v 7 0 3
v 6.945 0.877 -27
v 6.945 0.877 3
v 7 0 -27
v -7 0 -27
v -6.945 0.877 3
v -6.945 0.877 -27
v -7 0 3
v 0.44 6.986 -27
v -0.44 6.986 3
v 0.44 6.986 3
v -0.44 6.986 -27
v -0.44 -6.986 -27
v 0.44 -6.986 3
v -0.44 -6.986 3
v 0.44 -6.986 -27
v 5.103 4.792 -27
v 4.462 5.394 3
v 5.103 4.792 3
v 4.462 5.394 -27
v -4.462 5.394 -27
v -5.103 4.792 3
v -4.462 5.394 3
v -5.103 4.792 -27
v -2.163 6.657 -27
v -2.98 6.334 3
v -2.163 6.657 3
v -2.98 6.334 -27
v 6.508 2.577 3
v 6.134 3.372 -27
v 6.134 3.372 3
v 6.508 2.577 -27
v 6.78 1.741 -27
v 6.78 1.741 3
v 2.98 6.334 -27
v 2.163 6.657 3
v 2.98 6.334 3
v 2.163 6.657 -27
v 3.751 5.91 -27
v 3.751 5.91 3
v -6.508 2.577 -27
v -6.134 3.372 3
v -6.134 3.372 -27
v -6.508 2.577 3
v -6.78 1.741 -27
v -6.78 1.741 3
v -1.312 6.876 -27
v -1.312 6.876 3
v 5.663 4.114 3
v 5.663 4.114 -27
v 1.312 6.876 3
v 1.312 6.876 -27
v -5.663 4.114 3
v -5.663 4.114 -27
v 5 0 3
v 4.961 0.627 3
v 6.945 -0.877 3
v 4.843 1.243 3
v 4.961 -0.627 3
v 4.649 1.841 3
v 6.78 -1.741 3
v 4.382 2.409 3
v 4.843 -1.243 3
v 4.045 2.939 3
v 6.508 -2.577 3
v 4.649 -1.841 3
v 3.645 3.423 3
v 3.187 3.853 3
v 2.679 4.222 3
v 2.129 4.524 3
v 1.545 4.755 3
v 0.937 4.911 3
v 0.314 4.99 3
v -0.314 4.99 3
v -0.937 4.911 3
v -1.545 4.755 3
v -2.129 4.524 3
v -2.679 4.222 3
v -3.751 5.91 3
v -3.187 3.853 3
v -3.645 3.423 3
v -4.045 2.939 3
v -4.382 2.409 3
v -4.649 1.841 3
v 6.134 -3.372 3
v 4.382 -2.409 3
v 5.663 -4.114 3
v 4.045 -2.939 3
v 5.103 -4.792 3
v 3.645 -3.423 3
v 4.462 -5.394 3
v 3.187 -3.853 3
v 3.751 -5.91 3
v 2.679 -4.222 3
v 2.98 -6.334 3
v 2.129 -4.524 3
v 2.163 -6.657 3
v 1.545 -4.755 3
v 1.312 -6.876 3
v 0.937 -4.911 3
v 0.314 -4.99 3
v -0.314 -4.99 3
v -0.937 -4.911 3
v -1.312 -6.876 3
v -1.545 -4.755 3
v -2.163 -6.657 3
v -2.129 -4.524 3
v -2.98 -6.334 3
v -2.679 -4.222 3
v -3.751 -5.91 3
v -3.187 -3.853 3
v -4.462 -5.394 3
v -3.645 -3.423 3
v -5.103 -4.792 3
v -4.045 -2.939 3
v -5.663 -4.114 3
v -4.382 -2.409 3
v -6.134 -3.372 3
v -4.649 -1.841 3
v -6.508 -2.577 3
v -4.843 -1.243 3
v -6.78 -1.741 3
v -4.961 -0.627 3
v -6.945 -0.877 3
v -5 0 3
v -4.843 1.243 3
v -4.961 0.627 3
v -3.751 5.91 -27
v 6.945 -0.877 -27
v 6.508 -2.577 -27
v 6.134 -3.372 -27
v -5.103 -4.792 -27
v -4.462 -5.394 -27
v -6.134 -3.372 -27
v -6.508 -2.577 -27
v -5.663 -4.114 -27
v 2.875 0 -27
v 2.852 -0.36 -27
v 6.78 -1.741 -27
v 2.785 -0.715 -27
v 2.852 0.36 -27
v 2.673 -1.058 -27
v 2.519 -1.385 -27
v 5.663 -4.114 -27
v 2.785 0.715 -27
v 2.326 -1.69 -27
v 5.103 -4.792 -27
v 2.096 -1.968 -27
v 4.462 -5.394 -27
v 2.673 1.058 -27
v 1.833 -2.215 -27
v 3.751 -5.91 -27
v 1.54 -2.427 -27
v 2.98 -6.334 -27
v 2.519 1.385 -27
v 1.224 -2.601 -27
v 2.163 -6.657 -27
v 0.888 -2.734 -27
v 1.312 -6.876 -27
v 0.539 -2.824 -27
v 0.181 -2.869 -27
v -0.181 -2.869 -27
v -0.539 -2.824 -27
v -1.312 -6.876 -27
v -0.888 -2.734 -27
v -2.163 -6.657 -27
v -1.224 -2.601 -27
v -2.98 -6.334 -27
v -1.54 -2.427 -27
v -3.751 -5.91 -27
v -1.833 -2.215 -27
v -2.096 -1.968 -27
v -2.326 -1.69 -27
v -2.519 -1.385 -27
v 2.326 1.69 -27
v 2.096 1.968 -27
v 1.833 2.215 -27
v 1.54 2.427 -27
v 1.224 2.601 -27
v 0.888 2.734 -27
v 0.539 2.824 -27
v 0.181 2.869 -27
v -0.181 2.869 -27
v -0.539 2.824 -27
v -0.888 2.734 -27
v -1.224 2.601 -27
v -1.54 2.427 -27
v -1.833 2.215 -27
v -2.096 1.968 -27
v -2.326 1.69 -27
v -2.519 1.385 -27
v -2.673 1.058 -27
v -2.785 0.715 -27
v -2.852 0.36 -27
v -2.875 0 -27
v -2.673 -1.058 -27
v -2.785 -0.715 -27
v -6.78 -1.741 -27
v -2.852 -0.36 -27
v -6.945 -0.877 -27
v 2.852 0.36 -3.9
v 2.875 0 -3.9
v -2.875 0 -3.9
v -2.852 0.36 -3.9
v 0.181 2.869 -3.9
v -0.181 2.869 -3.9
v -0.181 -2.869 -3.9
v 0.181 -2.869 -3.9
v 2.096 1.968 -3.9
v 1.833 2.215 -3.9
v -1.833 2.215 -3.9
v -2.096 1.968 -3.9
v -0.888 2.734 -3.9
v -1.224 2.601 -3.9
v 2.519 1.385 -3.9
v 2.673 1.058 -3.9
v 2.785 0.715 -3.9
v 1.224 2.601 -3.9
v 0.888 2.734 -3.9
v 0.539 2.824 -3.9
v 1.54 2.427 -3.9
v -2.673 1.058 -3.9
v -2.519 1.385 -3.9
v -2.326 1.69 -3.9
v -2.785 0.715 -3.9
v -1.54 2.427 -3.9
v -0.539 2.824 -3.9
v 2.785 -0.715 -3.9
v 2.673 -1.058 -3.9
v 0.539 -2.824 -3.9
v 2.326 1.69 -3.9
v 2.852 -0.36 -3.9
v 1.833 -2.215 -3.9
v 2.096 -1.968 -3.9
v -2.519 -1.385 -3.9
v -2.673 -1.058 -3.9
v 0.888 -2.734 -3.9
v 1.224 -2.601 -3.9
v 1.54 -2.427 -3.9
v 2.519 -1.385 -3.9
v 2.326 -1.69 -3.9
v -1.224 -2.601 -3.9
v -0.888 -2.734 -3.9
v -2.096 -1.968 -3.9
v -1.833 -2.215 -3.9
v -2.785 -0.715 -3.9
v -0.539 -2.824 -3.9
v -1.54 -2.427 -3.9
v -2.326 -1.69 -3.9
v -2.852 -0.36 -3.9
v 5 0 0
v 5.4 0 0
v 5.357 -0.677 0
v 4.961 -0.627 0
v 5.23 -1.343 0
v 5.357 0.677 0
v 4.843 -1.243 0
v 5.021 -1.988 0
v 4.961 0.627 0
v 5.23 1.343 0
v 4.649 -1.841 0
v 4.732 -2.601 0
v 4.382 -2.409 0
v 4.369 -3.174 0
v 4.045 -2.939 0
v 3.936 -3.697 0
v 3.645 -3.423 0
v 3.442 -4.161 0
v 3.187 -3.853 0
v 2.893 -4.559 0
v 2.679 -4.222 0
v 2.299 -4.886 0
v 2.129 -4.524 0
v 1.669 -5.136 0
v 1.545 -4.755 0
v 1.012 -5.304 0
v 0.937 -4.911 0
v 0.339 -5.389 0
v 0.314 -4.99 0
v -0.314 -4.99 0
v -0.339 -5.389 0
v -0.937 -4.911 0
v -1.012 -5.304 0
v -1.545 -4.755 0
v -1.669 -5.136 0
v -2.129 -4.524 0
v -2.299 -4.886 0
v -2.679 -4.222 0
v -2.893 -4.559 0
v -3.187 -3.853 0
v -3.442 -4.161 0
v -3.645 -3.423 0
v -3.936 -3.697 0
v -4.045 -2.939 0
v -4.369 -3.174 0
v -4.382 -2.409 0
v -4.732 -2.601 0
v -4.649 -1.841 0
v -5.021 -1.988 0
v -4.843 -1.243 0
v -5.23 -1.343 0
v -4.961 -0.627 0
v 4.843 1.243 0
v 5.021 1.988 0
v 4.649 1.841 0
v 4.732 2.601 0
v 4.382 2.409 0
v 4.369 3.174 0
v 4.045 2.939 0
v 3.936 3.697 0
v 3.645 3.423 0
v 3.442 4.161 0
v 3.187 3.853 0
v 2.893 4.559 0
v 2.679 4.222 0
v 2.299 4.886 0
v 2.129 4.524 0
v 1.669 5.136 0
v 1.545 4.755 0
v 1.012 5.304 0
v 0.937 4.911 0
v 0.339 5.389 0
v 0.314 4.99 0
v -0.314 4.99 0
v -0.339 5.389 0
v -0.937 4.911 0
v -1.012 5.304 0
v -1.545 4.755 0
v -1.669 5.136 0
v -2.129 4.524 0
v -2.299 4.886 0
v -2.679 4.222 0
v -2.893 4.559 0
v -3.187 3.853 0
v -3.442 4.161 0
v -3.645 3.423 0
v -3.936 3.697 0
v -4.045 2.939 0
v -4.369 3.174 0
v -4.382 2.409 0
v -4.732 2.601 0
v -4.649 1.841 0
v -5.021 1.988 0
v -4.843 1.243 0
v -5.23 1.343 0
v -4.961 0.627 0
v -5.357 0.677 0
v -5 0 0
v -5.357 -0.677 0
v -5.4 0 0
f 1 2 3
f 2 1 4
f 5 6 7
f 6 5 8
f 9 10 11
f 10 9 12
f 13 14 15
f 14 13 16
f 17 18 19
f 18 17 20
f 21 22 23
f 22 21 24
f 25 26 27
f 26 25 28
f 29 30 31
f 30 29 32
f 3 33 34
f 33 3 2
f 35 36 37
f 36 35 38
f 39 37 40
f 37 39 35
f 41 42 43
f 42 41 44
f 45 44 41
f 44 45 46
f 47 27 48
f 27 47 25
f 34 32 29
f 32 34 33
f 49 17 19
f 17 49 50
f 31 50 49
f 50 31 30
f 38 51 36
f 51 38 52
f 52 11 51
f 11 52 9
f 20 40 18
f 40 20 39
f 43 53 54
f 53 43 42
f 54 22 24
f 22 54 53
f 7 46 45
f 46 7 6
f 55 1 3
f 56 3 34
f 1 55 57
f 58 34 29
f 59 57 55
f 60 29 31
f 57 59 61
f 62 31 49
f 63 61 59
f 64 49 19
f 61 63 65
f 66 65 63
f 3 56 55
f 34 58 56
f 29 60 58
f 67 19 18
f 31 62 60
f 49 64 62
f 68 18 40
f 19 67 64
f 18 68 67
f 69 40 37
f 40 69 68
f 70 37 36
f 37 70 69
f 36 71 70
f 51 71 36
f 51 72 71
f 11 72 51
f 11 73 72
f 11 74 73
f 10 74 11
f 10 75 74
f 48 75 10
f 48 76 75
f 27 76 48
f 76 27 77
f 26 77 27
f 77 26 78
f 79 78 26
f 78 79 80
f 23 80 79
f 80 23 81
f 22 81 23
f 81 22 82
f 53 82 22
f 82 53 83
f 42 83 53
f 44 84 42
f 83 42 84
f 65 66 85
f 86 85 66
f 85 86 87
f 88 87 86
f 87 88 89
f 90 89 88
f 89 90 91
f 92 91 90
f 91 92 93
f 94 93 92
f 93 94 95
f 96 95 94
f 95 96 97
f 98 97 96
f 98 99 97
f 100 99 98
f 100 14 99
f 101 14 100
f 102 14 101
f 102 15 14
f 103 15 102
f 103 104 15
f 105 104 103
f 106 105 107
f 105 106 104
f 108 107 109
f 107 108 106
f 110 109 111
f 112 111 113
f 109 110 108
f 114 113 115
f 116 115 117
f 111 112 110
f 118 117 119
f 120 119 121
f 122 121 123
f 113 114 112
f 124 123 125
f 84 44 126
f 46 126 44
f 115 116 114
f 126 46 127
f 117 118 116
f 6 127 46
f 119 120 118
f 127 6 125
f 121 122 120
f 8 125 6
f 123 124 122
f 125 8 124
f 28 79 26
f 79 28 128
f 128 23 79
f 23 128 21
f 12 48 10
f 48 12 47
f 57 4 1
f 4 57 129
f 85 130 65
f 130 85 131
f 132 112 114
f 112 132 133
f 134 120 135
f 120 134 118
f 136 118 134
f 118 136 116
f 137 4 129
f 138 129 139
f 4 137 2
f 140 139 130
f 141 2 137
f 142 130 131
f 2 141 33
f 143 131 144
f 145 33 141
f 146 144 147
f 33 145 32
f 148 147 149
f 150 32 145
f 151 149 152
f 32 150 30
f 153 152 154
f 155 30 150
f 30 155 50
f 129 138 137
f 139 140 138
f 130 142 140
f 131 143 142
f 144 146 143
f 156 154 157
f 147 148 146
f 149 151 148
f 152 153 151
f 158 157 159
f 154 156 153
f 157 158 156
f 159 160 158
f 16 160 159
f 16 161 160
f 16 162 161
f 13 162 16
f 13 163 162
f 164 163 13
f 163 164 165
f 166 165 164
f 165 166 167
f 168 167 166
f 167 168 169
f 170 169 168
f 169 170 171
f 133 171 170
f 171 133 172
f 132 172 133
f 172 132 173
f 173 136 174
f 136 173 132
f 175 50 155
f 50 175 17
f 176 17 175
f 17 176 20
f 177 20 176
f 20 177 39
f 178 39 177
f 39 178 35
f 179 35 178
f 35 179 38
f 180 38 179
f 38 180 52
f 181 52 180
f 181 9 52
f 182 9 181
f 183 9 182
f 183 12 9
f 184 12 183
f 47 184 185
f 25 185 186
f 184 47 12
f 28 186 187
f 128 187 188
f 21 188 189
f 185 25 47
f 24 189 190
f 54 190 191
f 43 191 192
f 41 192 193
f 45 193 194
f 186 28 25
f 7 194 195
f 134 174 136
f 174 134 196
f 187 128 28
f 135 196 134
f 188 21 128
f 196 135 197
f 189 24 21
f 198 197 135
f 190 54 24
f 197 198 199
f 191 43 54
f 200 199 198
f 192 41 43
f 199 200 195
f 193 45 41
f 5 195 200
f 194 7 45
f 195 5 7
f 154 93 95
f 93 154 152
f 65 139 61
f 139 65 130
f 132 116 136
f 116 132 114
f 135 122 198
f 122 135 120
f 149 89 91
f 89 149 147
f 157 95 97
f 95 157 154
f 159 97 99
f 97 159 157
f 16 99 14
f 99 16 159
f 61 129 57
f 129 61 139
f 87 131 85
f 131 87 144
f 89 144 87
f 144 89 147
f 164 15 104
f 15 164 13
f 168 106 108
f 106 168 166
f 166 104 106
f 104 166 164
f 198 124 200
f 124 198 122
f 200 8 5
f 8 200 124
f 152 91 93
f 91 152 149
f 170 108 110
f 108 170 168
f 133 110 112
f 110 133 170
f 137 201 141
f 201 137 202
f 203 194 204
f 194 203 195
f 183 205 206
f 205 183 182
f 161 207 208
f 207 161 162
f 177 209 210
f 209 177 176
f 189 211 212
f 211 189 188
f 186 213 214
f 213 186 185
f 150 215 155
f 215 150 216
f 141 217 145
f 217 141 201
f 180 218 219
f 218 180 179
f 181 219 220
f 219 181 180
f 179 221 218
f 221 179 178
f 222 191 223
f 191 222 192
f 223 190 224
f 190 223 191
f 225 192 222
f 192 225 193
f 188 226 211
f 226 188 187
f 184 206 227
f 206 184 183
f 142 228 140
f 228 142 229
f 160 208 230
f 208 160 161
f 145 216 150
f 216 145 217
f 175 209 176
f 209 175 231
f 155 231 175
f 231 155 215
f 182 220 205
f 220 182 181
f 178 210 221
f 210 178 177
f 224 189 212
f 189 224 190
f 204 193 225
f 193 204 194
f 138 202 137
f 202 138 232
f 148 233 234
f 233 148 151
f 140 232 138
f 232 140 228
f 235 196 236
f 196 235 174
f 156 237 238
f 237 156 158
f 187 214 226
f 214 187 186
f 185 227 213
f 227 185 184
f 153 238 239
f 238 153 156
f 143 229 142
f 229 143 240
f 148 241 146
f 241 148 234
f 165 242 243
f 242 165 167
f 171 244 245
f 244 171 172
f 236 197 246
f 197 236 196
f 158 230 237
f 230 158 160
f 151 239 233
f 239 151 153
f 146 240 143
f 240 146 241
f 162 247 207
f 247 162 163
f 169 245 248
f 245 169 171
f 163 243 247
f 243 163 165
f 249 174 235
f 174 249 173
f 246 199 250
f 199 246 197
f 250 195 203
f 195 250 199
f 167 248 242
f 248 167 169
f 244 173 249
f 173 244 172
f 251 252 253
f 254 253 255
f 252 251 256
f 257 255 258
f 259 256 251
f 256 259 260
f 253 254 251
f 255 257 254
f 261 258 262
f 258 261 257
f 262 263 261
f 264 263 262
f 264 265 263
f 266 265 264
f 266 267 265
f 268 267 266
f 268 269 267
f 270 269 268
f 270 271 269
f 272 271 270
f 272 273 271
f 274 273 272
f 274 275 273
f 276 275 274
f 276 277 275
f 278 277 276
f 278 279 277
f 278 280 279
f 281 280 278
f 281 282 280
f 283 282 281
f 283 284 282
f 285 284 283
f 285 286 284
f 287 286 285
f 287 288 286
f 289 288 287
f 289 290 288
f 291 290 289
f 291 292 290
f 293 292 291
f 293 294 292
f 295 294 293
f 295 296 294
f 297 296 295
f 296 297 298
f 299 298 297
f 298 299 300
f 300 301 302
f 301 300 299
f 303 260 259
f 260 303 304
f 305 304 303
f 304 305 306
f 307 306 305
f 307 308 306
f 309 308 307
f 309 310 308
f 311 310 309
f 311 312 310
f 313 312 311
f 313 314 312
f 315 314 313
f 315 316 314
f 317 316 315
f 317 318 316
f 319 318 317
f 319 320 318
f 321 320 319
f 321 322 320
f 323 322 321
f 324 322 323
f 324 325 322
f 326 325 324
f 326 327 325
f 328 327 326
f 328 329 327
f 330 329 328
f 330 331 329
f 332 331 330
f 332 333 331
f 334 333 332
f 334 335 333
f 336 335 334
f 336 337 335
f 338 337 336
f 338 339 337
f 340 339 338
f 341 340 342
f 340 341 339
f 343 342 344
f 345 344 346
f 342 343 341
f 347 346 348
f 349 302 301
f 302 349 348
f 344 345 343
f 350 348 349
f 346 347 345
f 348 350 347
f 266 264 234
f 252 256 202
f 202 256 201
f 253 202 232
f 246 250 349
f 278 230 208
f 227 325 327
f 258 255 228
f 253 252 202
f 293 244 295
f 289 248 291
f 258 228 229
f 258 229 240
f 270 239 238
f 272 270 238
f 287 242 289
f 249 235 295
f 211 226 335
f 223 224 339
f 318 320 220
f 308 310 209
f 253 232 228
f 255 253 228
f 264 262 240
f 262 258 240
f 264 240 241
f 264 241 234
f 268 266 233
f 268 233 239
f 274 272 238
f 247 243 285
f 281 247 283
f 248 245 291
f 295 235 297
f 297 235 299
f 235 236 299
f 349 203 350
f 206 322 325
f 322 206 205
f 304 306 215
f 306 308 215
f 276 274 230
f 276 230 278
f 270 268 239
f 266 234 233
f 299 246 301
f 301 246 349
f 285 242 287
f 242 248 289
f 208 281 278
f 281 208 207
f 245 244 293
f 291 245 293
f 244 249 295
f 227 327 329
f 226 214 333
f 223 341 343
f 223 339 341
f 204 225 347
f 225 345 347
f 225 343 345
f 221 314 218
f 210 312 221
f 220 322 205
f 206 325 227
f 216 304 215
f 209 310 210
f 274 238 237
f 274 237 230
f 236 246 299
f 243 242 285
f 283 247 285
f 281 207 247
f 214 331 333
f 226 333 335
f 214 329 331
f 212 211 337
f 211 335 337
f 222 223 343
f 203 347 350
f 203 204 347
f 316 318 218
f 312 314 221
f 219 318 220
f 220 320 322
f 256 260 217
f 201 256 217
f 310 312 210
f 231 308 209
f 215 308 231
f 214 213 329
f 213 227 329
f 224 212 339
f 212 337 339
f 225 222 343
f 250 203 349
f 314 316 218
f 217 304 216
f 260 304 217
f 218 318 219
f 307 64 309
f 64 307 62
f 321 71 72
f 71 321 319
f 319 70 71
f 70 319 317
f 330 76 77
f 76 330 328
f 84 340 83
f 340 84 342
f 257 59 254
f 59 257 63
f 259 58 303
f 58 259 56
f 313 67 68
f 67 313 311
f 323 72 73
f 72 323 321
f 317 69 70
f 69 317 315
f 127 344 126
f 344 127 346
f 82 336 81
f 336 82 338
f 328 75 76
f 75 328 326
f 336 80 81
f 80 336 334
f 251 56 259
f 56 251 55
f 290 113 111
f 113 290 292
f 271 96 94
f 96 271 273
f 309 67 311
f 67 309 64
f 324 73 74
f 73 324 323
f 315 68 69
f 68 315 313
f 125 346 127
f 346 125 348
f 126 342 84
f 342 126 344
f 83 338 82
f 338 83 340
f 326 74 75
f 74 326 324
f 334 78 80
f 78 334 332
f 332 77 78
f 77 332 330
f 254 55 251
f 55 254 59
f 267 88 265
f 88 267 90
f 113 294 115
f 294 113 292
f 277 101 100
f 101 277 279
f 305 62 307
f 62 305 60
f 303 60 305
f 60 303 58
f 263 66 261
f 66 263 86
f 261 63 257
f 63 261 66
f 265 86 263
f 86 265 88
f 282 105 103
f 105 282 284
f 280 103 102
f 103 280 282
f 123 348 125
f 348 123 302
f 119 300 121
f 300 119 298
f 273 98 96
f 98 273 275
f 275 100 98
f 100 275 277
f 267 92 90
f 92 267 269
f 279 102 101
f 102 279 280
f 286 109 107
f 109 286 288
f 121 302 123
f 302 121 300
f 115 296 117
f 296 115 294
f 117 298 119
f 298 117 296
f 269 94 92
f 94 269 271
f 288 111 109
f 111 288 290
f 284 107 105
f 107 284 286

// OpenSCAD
$fn = 50;

difference() {
	union() {
		translate(v = [0, 0, -27.0]) {
			cylinder(h = 30, r = 7.0);
		}
		#translate(v = [0, 0, -30.0]) {
			cylinder(h = 30, r = 2.875);
		}
	}
	union() {
		translate(v = [0, 0, 0]) {
			rotate(a = [0, 0, 0]) {
				difference() {
					union() {
						translate(v = [0, 0, -30.0]) {
							cylinder(h = 30, r = 2.6);
						}
						translate(v = [0, 0, -3.9]) {
							cylinder(h = 3.9, r1 = 2.875, r2 = 5.4);
						}
						translate(v = [0, 0, -30.0]) {
							cylinder(h = 30, r = 2.875);
						}
						translate(v = [0, 0, -30.0]) {
							cylinder(h = 30, r = 2.6);
						}
					}
					union();
				}
			}
		}
		#cylinder(h = 3, r = 5.0);
	}
}
